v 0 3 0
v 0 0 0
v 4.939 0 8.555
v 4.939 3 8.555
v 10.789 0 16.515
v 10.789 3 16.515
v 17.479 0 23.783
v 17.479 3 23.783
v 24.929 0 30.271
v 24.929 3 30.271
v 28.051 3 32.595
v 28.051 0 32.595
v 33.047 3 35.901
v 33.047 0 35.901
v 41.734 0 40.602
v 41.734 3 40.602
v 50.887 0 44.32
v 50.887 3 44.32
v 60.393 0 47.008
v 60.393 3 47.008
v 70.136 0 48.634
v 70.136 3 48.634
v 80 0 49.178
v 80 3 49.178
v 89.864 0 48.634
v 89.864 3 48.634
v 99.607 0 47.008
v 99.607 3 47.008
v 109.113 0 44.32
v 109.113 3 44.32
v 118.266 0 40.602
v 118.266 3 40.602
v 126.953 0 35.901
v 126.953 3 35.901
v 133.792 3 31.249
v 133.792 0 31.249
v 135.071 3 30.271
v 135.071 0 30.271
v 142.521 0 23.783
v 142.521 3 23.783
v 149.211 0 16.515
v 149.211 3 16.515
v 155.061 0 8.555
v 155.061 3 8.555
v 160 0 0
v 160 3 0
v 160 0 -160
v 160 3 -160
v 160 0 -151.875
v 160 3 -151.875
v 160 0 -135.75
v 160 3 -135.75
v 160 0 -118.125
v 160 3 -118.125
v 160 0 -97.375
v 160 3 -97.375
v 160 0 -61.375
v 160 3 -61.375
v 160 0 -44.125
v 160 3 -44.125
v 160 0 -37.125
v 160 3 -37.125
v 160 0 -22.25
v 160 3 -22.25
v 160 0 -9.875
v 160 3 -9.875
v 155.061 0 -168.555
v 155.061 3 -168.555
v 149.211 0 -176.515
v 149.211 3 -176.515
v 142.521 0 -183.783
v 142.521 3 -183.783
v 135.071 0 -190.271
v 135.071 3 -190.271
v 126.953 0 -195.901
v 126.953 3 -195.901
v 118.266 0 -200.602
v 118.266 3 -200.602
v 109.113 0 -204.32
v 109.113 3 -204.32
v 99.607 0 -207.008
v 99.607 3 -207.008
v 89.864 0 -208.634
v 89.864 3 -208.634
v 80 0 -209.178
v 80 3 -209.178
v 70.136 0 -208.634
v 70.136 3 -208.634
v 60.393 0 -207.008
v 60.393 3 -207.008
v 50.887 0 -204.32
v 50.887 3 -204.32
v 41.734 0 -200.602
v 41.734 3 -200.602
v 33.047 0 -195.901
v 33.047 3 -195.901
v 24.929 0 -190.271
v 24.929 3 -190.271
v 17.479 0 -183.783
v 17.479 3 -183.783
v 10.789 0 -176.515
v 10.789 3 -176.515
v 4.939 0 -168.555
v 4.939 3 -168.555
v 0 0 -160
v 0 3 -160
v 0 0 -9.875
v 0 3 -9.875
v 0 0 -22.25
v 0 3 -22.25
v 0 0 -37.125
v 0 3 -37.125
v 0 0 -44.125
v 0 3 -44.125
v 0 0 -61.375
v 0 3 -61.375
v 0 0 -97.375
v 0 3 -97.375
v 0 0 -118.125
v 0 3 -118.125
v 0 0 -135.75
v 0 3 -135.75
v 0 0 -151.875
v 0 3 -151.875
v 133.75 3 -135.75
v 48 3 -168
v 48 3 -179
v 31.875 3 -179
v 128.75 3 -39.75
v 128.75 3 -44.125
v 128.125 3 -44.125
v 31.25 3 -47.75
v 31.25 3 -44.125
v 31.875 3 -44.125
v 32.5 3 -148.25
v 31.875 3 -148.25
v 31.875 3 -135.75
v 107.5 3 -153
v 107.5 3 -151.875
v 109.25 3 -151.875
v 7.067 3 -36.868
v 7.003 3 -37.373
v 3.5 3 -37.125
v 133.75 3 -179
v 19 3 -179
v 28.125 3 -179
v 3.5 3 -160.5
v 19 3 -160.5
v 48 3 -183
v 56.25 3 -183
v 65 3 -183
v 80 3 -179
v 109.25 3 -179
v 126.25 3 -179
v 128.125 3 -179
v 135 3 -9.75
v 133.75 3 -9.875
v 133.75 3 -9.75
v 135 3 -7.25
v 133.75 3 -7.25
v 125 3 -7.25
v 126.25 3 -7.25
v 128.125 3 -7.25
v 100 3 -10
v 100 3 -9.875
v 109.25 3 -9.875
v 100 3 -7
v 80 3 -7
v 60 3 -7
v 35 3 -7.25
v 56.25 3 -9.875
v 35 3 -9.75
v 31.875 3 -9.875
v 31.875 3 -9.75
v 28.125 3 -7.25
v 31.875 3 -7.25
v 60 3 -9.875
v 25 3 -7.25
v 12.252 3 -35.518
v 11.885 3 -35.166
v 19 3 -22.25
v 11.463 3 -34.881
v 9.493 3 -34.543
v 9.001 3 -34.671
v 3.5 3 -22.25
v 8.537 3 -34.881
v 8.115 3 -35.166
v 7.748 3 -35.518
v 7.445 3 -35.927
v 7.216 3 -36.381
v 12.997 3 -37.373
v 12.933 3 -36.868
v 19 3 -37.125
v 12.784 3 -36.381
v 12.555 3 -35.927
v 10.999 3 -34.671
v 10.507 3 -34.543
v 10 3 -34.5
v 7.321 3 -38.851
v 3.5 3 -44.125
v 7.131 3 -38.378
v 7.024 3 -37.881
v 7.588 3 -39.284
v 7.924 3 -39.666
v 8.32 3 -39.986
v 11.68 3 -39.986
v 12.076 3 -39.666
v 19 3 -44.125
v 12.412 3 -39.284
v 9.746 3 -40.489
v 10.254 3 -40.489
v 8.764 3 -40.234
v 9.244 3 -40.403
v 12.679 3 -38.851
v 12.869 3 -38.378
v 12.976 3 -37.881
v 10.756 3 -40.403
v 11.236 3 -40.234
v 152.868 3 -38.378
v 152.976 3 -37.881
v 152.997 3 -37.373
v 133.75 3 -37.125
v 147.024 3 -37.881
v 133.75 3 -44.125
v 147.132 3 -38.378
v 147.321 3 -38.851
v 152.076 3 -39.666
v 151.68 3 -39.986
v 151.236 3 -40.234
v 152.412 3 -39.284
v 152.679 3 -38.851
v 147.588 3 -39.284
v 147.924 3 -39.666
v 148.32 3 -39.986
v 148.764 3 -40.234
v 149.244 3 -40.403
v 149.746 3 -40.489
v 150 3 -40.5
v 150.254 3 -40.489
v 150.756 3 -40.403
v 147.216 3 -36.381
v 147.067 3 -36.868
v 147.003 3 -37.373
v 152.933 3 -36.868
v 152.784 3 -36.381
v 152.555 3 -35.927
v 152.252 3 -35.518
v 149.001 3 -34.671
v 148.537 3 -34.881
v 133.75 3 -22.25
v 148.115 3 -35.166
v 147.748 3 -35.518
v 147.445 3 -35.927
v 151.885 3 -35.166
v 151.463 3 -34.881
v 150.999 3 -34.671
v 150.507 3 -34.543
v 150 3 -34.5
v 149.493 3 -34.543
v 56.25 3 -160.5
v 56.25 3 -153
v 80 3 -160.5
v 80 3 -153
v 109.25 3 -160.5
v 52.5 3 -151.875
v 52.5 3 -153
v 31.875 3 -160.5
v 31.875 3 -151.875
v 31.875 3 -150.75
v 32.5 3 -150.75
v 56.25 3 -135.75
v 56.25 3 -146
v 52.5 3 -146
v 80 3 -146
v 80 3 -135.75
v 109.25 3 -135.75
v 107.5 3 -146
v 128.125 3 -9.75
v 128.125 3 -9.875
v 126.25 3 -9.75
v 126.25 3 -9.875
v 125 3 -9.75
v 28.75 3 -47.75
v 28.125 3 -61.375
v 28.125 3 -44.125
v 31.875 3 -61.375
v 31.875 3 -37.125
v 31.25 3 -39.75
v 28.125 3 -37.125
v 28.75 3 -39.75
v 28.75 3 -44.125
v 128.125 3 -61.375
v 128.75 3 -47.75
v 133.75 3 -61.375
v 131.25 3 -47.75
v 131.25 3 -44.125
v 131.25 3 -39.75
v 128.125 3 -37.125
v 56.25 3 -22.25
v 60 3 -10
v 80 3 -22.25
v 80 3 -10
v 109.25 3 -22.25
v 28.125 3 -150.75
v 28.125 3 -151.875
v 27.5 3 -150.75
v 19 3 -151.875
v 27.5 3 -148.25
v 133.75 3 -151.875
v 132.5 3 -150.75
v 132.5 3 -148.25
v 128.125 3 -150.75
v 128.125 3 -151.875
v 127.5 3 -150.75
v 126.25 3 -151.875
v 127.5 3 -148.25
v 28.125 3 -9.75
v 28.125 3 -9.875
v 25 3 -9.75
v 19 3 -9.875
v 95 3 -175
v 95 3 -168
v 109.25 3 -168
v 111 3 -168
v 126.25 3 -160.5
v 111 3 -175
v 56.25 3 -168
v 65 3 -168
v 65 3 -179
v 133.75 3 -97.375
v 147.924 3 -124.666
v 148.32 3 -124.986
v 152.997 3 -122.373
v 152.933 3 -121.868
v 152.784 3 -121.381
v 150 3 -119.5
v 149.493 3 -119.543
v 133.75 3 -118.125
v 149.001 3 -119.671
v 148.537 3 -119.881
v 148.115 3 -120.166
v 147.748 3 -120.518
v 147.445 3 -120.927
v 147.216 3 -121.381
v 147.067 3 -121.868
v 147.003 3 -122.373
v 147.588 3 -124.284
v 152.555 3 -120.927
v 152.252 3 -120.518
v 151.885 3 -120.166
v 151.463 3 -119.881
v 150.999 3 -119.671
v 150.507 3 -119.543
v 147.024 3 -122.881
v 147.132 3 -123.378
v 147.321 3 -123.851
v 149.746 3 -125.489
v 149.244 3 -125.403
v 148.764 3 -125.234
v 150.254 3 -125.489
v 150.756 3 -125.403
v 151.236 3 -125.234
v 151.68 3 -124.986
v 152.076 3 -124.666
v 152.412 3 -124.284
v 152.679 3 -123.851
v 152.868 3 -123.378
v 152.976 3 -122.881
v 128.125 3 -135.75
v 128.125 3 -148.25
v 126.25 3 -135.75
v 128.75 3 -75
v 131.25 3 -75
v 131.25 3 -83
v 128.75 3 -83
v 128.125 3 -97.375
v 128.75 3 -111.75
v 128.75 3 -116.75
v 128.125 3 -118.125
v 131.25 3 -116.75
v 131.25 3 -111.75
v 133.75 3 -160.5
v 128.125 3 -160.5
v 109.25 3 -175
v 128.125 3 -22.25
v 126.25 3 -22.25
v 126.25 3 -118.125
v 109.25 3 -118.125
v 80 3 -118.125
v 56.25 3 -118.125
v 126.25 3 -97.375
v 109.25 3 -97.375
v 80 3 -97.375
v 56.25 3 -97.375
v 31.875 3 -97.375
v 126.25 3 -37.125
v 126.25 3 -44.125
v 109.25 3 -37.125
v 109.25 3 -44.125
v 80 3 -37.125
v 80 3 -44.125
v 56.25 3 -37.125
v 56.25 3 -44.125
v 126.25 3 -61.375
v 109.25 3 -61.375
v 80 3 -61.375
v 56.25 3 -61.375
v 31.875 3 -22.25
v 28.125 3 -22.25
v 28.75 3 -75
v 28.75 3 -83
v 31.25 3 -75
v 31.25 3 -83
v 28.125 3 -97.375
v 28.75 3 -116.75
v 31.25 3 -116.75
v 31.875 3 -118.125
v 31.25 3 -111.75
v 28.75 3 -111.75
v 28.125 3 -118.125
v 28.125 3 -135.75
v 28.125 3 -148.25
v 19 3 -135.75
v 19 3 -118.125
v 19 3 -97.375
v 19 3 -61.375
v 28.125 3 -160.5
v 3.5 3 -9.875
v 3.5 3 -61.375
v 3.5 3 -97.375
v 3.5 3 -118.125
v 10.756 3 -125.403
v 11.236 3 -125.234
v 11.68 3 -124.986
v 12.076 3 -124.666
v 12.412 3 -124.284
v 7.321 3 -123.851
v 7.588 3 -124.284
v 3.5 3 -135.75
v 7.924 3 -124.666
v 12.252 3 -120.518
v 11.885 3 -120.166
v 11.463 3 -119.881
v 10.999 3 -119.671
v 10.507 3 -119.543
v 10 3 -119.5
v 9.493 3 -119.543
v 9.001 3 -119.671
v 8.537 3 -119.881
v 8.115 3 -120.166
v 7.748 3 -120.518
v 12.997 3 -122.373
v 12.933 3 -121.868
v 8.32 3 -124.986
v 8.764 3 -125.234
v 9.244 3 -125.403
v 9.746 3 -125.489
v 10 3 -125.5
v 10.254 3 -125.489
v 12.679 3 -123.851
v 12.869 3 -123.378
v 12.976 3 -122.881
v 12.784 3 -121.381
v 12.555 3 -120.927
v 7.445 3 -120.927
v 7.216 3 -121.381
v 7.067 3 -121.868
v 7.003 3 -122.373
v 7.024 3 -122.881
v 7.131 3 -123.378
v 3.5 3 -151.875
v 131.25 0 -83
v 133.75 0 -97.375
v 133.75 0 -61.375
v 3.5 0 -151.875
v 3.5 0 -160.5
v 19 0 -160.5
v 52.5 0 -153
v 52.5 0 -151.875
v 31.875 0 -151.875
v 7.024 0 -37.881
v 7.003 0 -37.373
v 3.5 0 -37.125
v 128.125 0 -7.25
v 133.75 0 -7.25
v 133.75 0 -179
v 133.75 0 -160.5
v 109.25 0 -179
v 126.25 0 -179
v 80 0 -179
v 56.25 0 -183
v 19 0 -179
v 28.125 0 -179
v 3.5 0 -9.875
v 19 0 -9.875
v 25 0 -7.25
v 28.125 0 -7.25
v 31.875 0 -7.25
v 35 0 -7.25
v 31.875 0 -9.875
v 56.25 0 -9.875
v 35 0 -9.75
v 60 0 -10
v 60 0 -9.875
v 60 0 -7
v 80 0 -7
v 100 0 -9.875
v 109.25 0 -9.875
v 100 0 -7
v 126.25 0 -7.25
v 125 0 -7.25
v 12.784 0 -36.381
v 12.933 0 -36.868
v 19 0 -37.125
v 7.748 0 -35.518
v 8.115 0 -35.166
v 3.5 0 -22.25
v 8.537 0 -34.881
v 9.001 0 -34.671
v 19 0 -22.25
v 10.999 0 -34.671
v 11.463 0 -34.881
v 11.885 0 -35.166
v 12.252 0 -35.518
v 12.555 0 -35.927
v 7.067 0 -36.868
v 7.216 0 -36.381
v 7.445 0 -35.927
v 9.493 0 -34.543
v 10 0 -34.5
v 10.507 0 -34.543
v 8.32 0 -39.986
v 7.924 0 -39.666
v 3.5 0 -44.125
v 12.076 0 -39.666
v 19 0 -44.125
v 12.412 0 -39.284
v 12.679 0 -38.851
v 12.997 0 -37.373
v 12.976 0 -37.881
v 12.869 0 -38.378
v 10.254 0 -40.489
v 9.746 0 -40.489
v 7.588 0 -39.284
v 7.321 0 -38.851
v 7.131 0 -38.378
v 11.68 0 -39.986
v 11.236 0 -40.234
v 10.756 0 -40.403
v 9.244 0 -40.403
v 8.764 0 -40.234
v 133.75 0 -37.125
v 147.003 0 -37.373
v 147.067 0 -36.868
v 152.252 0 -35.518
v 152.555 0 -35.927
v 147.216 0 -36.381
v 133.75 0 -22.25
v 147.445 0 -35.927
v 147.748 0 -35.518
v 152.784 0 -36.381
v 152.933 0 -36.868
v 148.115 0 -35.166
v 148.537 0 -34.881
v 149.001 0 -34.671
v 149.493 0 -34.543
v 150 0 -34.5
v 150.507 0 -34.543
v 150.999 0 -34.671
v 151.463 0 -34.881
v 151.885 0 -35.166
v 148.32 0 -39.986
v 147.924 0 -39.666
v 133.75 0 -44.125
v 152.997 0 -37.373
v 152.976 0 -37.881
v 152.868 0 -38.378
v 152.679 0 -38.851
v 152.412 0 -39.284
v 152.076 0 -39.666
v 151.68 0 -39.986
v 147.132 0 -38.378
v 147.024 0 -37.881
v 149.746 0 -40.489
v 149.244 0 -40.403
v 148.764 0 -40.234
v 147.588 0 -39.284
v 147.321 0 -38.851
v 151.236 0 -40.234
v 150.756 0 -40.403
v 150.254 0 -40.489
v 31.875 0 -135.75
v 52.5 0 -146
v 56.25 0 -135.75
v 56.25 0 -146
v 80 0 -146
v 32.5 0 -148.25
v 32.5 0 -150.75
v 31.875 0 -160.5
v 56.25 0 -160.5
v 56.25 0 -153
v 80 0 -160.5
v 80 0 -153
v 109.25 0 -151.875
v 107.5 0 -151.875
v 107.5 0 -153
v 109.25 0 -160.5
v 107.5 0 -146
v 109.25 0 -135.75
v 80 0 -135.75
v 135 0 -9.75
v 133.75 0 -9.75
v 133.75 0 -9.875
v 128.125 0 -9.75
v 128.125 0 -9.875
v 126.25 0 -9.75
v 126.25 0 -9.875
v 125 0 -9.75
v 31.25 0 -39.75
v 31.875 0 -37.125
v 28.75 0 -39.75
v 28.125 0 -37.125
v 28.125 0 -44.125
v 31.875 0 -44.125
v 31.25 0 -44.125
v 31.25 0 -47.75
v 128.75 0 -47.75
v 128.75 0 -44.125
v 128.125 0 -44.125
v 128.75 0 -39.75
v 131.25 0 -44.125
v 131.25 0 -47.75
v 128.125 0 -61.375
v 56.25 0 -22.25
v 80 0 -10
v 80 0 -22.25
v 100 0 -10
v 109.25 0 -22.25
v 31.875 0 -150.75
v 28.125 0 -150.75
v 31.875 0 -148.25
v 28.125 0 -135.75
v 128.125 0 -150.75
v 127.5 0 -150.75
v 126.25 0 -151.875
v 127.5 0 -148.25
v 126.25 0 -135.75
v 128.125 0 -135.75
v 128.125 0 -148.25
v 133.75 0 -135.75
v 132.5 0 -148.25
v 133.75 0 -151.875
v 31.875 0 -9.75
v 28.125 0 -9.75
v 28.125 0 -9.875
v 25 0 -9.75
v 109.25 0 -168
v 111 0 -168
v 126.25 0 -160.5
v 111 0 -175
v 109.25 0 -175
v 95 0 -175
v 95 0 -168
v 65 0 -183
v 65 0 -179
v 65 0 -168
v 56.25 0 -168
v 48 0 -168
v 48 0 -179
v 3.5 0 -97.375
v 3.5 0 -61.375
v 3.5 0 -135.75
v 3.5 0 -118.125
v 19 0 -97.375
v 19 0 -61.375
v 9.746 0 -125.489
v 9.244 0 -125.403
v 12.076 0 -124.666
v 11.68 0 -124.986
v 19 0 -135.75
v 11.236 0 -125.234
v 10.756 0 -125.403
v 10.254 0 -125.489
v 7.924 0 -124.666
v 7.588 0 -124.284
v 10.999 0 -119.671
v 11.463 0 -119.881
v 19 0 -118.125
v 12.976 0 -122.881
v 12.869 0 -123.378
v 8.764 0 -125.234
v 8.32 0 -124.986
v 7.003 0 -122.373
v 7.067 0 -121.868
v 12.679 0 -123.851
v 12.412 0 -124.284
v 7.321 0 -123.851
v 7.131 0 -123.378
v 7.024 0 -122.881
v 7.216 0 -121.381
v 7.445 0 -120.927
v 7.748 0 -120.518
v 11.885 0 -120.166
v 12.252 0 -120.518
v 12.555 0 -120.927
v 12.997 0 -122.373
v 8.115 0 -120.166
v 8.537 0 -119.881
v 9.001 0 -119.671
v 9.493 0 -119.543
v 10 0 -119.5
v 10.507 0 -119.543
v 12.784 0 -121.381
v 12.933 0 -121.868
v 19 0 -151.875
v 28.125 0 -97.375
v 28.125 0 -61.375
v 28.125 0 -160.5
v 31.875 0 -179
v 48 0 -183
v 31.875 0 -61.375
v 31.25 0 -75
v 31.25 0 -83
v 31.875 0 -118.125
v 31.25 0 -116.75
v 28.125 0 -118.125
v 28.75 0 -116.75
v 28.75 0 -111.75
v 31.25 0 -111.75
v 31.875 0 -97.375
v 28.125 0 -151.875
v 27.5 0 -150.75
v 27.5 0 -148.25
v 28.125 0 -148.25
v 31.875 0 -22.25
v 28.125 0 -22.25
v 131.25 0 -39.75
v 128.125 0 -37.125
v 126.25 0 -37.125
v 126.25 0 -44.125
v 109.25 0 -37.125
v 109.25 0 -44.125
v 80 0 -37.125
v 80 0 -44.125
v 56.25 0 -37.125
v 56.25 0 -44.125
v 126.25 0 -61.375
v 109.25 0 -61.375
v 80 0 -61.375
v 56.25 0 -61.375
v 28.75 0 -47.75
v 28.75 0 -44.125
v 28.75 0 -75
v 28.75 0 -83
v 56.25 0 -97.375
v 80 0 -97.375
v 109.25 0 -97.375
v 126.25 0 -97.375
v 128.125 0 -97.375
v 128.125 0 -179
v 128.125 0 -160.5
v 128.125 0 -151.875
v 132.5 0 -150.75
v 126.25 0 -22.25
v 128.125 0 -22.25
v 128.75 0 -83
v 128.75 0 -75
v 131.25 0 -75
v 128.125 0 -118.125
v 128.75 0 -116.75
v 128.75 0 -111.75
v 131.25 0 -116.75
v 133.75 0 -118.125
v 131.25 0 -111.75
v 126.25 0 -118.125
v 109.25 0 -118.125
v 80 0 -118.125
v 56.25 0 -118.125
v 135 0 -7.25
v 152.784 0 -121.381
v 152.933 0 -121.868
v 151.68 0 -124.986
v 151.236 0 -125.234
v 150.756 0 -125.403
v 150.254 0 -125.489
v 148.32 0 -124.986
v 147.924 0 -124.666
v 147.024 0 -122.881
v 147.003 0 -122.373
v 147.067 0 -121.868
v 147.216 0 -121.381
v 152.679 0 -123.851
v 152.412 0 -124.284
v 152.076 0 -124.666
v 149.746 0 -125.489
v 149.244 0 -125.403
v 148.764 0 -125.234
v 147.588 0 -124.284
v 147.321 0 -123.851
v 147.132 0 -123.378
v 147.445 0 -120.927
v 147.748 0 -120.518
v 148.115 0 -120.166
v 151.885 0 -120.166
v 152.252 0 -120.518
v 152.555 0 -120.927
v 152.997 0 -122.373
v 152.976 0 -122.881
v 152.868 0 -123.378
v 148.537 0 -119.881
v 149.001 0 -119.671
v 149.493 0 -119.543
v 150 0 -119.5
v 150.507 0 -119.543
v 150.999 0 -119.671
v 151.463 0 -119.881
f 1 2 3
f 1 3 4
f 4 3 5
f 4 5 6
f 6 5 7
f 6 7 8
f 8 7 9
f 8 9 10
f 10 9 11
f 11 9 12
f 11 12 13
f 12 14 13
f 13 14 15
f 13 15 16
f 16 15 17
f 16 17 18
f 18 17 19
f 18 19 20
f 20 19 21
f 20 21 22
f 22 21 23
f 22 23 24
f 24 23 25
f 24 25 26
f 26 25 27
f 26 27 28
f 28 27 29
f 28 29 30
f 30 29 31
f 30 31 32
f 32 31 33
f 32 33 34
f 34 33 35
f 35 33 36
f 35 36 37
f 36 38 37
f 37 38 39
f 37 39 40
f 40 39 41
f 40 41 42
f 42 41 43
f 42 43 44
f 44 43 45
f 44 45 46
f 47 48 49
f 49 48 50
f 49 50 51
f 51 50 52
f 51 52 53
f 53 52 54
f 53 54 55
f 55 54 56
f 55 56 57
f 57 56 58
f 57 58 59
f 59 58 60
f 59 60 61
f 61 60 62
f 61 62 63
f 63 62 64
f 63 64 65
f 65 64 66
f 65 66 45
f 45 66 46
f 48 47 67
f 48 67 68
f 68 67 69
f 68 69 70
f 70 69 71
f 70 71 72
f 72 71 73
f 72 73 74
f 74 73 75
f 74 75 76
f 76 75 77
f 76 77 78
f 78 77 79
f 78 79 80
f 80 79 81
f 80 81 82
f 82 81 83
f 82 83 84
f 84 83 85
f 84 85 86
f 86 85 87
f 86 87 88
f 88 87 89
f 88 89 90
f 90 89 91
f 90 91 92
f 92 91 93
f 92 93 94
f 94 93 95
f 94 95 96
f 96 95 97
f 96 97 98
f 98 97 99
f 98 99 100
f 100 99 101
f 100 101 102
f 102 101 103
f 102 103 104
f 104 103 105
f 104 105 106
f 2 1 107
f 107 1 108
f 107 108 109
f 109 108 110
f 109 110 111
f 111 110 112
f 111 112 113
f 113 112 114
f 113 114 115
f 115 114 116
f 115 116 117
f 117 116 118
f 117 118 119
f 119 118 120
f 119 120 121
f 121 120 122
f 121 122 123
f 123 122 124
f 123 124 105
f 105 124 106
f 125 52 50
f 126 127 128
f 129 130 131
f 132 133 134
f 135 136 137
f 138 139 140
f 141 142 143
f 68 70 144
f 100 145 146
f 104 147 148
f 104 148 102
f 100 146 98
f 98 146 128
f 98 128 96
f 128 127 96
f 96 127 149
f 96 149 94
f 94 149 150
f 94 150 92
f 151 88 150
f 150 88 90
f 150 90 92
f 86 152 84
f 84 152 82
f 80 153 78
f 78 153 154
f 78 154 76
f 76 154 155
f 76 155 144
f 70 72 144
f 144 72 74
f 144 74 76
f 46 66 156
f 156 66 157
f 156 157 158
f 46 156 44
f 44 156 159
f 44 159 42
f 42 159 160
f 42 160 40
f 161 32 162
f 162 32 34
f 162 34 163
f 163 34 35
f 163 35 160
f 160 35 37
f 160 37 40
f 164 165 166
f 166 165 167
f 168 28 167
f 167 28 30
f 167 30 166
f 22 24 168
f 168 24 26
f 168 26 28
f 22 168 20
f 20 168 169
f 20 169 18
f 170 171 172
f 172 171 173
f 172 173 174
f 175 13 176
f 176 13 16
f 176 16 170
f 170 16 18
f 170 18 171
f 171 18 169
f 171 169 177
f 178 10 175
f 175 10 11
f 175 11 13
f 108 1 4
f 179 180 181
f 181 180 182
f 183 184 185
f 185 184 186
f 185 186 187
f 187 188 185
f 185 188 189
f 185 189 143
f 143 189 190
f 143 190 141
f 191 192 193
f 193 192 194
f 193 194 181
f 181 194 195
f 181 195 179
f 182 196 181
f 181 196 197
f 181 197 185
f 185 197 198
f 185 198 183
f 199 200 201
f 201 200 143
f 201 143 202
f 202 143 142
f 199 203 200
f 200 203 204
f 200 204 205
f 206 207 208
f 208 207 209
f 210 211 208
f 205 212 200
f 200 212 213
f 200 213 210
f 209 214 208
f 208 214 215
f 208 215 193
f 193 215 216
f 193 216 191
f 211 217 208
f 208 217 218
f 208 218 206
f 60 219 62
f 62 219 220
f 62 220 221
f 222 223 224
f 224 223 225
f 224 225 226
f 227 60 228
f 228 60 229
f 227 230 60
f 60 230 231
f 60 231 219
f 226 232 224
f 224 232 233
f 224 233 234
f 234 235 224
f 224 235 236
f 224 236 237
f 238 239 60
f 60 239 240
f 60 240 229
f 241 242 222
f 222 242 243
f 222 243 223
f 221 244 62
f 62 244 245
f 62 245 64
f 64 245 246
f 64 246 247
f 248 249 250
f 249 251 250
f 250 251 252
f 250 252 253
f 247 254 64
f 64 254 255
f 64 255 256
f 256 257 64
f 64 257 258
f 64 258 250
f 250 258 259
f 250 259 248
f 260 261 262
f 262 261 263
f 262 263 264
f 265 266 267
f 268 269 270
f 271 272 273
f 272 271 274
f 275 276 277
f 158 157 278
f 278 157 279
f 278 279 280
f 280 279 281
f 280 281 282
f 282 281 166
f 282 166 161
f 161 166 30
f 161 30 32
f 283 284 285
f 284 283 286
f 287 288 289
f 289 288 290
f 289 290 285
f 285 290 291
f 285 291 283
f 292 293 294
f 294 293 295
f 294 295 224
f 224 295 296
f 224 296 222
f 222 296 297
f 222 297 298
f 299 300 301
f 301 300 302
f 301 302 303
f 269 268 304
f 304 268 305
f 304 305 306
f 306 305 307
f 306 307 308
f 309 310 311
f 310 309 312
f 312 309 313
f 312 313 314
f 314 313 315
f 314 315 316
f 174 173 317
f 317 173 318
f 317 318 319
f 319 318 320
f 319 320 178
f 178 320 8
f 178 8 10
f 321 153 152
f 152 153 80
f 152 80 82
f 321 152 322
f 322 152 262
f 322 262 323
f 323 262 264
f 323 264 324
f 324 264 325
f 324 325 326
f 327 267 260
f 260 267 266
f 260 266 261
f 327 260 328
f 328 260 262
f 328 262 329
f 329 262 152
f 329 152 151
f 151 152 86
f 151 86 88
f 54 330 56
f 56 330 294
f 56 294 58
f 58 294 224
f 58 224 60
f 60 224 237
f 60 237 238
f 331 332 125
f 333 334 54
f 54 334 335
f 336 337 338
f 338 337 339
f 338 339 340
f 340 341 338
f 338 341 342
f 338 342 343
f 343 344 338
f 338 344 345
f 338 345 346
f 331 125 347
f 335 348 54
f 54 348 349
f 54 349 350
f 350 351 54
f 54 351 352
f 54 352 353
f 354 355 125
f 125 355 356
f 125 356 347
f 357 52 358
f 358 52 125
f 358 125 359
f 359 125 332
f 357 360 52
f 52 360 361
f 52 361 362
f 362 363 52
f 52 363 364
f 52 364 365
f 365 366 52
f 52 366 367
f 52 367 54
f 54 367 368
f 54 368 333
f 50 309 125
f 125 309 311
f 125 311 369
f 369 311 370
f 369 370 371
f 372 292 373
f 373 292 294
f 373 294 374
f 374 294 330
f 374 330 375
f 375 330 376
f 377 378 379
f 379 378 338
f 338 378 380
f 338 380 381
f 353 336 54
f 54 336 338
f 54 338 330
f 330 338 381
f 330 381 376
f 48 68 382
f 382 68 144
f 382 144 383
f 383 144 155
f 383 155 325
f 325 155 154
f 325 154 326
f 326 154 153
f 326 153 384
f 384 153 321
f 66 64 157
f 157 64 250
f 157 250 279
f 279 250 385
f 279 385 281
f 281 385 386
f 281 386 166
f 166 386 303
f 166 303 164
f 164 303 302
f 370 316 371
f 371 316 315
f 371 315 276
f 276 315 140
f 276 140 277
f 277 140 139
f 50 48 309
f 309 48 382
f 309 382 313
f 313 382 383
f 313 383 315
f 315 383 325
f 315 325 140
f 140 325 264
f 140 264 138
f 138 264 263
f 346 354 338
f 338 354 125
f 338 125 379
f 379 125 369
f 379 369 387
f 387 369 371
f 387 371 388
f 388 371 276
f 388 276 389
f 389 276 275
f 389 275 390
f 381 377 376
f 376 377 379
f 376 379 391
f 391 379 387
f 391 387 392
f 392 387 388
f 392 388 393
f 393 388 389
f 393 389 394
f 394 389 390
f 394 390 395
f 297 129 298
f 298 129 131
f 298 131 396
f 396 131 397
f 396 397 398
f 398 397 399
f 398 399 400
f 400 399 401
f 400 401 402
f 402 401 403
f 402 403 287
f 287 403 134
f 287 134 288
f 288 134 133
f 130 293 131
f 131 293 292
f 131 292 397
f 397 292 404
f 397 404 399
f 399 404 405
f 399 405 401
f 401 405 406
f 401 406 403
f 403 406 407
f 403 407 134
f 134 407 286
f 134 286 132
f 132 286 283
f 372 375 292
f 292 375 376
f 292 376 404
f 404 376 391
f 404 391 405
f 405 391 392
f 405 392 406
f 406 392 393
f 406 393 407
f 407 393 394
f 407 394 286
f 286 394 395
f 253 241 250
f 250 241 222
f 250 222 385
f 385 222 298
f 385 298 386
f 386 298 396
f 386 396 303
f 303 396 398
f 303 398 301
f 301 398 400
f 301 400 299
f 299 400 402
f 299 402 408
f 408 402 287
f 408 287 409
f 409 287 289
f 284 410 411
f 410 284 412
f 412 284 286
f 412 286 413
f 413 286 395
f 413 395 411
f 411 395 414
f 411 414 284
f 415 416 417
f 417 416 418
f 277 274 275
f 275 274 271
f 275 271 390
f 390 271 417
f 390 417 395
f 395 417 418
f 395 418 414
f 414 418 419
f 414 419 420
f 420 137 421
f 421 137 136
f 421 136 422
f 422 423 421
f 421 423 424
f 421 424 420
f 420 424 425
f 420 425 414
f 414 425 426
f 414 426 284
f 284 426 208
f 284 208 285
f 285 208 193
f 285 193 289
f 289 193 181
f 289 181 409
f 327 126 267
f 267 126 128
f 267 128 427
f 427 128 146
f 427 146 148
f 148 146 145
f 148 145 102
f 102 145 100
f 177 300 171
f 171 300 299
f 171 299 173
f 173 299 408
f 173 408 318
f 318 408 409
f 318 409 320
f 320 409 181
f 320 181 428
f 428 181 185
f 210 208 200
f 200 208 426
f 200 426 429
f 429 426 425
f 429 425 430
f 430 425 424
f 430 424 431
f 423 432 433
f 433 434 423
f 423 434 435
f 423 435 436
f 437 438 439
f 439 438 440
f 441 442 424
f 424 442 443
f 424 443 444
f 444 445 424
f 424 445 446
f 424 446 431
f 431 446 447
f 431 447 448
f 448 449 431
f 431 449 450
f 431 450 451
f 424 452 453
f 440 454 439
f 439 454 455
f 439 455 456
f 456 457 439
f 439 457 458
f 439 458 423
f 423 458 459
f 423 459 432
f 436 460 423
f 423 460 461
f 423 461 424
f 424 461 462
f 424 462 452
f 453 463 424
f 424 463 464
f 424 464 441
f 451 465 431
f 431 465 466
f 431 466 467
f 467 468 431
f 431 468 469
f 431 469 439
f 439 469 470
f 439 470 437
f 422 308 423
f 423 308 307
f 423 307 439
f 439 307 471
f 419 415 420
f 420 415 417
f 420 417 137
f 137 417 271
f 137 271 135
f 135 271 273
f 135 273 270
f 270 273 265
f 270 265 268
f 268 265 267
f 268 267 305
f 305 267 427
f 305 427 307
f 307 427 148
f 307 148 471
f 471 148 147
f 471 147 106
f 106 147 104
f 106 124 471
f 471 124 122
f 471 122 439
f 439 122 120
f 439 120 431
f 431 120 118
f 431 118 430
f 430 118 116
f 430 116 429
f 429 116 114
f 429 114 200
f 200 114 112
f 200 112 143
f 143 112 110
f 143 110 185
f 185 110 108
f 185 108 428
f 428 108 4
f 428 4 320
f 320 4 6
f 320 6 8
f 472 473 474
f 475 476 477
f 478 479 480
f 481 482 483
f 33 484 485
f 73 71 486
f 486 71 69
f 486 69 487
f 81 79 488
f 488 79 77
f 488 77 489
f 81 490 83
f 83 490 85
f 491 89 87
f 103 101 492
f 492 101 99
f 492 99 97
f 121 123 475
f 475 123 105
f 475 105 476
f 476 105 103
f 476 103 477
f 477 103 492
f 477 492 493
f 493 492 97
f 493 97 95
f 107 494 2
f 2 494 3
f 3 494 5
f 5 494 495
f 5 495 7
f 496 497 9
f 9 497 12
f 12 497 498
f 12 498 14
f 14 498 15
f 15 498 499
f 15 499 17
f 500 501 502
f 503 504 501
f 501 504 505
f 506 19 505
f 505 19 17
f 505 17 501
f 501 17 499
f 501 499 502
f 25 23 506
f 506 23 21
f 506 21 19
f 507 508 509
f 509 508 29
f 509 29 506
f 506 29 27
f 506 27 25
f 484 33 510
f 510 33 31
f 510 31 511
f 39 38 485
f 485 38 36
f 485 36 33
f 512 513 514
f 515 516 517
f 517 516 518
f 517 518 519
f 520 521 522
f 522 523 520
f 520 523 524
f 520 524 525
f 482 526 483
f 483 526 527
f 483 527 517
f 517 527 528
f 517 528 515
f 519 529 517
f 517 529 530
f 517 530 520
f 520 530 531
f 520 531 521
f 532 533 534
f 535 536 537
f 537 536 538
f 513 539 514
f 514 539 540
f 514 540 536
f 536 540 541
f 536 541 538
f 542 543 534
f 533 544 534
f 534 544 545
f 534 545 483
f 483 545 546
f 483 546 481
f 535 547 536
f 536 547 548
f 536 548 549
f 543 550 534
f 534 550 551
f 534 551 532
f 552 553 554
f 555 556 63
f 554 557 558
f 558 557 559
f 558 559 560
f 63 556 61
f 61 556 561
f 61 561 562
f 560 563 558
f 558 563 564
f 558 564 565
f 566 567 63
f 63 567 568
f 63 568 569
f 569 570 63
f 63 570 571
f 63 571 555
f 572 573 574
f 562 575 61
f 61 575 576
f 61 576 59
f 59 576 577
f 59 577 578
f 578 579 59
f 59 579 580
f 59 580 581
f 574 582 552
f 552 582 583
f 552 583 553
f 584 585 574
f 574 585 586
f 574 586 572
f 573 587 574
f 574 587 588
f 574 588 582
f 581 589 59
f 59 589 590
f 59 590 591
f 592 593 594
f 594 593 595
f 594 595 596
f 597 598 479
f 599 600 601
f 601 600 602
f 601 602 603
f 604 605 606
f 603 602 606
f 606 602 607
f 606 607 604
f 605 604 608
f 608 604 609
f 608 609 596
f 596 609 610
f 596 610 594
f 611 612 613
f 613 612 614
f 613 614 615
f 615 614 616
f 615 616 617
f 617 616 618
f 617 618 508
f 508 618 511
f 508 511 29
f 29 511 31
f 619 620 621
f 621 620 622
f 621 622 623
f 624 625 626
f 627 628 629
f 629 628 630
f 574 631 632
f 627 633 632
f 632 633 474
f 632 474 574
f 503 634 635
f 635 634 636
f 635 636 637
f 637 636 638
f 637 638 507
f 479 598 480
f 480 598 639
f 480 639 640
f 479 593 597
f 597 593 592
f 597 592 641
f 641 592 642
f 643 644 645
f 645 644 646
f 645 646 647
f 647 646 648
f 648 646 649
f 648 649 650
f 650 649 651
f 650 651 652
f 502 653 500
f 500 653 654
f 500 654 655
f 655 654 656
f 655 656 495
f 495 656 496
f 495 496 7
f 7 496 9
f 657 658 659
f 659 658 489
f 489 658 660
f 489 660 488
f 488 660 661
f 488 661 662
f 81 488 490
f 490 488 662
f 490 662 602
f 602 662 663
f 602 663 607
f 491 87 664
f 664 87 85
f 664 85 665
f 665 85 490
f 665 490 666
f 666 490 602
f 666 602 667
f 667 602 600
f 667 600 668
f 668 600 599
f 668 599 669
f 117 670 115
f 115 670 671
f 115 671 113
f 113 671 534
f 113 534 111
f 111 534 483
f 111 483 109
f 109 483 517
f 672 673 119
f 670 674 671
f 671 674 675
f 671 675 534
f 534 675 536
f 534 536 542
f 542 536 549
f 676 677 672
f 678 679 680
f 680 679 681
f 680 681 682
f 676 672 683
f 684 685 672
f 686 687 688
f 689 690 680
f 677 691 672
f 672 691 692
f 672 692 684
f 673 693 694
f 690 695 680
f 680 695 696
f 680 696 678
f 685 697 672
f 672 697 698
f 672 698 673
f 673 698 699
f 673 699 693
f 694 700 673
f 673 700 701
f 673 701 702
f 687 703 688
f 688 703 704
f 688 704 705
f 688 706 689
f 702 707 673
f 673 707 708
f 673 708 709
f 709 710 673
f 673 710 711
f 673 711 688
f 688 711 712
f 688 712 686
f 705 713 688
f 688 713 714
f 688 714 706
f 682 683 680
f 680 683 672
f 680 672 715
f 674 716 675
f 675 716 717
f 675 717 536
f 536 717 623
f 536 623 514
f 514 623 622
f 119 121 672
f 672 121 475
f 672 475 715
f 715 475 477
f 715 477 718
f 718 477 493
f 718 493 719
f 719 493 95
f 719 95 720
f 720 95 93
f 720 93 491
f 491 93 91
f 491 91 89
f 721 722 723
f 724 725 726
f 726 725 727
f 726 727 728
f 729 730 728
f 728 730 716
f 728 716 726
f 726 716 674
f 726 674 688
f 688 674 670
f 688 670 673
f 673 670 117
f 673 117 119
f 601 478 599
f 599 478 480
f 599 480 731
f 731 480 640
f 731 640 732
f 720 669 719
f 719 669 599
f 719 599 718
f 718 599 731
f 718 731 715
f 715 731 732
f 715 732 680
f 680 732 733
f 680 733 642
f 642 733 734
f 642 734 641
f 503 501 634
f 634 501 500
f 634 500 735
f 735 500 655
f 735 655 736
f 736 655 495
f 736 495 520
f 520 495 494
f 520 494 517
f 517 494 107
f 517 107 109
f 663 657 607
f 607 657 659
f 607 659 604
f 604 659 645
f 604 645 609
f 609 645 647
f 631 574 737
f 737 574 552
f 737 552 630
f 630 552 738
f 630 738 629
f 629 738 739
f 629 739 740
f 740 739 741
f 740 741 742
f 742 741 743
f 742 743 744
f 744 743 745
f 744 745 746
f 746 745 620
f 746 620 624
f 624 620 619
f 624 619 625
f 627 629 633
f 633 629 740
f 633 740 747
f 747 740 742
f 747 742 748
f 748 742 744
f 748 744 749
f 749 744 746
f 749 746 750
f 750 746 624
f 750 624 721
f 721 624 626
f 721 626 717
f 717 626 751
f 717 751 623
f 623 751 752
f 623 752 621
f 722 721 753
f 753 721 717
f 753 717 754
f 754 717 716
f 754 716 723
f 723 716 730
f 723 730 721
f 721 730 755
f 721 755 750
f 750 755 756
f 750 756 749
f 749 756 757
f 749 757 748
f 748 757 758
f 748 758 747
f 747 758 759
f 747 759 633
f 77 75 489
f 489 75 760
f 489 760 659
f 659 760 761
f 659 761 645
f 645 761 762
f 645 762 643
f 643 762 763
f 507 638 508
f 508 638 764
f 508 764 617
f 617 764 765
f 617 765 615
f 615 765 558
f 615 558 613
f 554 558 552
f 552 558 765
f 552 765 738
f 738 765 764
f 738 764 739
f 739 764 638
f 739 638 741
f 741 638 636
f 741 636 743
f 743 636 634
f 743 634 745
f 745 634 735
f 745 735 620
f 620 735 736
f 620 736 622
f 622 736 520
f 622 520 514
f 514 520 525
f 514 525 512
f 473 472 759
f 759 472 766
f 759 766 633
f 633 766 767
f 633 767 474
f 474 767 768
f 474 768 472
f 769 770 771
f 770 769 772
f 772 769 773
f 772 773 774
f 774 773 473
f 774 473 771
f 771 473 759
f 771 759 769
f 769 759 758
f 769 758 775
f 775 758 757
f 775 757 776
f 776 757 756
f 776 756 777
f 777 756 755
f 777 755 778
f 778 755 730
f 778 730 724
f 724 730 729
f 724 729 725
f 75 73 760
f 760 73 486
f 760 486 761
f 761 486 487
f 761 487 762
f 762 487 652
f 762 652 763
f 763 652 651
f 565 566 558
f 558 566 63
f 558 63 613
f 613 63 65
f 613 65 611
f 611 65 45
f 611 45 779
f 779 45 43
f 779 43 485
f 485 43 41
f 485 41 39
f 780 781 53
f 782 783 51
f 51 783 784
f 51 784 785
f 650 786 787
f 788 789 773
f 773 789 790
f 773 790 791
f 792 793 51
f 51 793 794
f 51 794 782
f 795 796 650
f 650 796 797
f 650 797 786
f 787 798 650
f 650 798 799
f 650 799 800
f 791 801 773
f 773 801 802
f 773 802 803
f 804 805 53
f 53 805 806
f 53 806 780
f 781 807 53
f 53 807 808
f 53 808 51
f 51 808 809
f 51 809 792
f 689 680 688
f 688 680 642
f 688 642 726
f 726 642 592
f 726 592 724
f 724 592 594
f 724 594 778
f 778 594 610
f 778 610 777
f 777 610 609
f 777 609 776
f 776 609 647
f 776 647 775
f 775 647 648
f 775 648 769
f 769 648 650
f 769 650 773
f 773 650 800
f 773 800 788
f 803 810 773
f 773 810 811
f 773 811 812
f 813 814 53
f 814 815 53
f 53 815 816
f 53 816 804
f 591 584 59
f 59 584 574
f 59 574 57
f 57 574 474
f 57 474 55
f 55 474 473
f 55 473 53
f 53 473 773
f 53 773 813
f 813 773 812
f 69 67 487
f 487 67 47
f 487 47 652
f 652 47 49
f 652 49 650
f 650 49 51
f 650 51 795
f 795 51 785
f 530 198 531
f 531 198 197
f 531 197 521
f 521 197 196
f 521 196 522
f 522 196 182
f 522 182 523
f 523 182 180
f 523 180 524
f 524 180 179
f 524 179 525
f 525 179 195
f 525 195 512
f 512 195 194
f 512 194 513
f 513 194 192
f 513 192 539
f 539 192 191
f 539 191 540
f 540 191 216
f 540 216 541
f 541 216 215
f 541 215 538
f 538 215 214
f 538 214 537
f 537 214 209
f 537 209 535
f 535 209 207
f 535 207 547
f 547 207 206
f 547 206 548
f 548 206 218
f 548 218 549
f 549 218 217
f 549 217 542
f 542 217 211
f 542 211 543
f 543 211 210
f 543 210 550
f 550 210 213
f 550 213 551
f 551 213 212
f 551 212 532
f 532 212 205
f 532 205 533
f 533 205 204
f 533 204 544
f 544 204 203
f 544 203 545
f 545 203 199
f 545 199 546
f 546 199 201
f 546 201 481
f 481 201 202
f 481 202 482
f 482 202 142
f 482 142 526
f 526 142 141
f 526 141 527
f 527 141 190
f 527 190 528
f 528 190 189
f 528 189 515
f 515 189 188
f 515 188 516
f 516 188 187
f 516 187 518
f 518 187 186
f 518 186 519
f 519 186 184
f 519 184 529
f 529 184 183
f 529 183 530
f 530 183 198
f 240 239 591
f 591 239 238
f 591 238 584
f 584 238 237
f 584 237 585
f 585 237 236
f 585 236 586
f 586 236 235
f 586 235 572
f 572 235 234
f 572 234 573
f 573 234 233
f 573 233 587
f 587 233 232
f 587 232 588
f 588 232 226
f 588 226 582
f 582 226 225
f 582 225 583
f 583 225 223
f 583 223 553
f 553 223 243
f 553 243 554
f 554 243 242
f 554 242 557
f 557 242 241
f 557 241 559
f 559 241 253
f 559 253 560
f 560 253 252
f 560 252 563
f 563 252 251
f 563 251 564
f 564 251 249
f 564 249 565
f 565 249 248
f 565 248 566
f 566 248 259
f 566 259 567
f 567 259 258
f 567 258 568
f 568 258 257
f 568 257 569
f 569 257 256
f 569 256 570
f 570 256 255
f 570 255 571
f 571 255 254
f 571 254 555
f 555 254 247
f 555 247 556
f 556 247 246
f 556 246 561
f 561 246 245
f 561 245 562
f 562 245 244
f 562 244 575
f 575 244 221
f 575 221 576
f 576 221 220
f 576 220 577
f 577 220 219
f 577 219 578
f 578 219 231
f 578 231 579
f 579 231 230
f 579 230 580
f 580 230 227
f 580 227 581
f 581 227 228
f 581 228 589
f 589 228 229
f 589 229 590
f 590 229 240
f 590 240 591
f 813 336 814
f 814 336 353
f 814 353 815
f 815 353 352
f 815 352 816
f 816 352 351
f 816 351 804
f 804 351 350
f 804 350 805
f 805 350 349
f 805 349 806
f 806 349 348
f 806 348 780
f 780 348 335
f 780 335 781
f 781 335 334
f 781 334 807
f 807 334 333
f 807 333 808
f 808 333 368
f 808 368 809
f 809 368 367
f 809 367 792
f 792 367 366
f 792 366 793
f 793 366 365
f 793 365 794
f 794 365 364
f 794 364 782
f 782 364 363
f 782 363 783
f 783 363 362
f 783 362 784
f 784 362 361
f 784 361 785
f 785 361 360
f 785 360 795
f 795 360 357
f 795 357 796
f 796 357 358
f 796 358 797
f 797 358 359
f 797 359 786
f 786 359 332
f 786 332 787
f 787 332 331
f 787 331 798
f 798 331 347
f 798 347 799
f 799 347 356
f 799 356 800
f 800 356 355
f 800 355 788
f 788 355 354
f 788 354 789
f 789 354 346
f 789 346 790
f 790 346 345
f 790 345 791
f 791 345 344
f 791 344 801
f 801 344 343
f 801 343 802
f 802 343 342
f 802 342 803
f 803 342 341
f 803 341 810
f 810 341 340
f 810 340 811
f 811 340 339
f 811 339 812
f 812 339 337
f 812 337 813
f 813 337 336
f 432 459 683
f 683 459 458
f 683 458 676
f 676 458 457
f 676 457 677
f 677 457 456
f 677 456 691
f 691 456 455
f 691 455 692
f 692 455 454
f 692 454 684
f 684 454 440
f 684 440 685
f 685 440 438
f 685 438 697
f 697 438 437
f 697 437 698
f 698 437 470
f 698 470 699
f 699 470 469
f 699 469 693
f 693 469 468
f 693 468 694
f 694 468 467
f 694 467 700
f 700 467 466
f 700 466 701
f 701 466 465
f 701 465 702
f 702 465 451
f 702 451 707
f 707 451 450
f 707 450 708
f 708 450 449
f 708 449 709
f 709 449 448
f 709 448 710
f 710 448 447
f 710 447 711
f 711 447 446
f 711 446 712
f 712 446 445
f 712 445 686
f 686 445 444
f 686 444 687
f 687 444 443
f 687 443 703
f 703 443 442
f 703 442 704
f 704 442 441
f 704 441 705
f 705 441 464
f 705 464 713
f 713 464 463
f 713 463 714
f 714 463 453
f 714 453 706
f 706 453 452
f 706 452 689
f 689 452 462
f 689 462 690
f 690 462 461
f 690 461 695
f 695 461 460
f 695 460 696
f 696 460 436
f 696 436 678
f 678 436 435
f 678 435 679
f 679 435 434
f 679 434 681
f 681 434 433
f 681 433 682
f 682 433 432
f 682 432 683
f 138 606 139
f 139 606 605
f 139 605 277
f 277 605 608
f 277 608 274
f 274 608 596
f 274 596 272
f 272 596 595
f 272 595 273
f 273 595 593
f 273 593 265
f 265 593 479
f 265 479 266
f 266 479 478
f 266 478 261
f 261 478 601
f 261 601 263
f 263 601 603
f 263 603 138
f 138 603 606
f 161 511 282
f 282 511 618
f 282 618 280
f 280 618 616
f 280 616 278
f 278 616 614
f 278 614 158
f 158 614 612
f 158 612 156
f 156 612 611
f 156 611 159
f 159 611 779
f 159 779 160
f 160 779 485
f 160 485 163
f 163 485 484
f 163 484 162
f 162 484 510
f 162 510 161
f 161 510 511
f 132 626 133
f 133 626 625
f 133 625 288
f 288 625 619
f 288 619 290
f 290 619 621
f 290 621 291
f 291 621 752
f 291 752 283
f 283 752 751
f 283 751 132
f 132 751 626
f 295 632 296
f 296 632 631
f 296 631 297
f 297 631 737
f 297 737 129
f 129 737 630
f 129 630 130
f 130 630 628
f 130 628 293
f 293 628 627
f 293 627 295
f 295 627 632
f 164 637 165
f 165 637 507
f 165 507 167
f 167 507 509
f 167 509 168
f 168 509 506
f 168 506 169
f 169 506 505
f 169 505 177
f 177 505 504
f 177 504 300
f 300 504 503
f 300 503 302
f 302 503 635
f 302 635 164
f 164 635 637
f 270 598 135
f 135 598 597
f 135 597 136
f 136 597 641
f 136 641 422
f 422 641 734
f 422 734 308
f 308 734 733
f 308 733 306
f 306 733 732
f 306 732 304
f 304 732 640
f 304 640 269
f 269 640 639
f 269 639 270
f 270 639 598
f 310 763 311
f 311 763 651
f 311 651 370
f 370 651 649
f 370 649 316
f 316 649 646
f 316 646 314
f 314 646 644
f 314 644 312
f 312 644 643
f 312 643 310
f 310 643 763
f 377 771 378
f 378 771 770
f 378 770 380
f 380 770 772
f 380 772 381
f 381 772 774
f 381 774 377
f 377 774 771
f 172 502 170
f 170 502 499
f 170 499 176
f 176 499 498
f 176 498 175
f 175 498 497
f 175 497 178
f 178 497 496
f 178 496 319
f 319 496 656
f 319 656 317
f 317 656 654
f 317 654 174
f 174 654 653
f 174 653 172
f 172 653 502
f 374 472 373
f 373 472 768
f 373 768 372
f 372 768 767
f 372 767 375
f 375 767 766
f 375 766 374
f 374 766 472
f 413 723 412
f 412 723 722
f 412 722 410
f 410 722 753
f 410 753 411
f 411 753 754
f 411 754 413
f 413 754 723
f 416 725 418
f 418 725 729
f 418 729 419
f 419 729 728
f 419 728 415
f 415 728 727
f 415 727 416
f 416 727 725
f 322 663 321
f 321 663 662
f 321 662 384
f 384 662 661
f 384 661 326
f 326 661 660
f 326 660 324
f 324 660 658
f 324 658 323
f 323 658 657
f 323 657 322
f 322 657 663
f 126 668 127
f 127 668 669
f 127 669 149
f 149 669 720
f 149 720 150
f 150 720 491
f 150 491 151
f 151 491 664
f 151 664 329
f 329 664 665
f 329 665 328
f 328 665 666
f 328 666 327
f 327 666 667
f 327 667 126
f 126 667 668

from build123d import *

# Parameters (mm, degrees)
BOSS_EXTRUDE1_DEPTH = 3
SKETCH5_R           = 3
CUT_EXTRUDE2_DEPTH  = 44
SKETCH8_W           = 55
SKETCH8_H           = 7
SKETCH8_W_2         = 2.5
SKETCH8_H_2         = 8
SKETCH8_W_3         = 40
SKETCH8_H_3         = 3
SKETCH8_W_4         = 5
SKETCH8_H_4         = 2.5
SKETCH8_H_5         = 5
SKETCH8_W_5         = 10
CUT_EXTRUDE5_DEPTH  = 31
SKETCH9_W           = 17
SKETCH9_H           = 15
SKETCH9_W_2         = 16
SKETCH9_H_2         = 7
CUT_EXTRUDE6_DEPTH  = 29


with BuildPart() as part:
    # Sketch1 → Boss-Extrude1 (new body)
    with BuildSketch(Plane(origin=(0, 0, 0), x_dir=(1, 0, 0), z_dir=(0, 1, 0))):
        with BuildLine():
            Line((0, 0), (0, 160))
            ThreePointArc((0, 160), (80, 209.178296965), (160, 160))
            Line((160, 160), (160, 0))
            ThreePointArc((160, 0), (80, -49.178296965), (0, 0))
        make_face()
    extrude(amount=BOSS_EXTRUDE1_DEPTH)

    # Sketch5 → Cut-Extrude2 (cut)
    with BuildSketch(Plane(origin=(0, 3, 0), x_dir=(1, 0, 0), z_dir=(0, 1, 0))):
        with Locations(Location((10, 37.5, 0), (0, 0, 270))):
            Circle(SKETCH5_R)
        with Locations(Location((150, 37.5, 0), (0, 0, 270))):
            Circle(SKETCH5_R)
        with Locations(Location((150, 122.5, 0), (0, 0, 270))):
            Circle(SKETCH5_R)
        with Locations(Location((10, 122.5, 0), (0, 0, 270))):
            Circle(SKETCH5_R)
    extrude(amount=-CUT_EXTRUDE2_DEPTH, mode=Mode.SUBTRACT)

    # Sketch8 → Cut-Extrude5 (cut)
    with BuildSketch(Plane(origin=(0, 3, 0), x_dir=(1, 0, 0), z_dir=(0, 1, 0))):
        with Locations((80, 149.5)):
            Rectangle(SKETCH8_W, SKETCH8_H)
        with Locations((30, 43.75)):
            Rectangle(SKETCH8_W_2, SKETCH8_H_2)
        with Locations((80, 8.5)):
            Rectangle(SKETCH8_W_3, SKETCH8_H_3)
        with Locations((30, 149.5)):
            Rectangle(SKETCH8_W_4, SKETCH8_H_4)
        with Locations((130, 149.5)):
            Rectangle(SKETCH8_W_4, SKETCH8_H_4)
        with Locations((130, 114.25)):
            Rectangle(SKETCH8_W_2, SKETCH8_H_5)
        with Locations((30, 114.25)):
            Rectangle(SKETCH8_W_2, SKETCH8_H_5)
        with Locations((30, 79)):
            Rectangle(SKETCH8_W_2, SKETCH8_H_2)
        with Locations((130, 79)):
            Rectangle(SKETCH8_W_2, SKETCH8_H_2)
        with Locations((30, 8.5)):
            Rectangle(SKETCH8_W_5, SKETCH8_H_4)
        with Locations((130, 8.5)):
            Rectangle(SKETCH8_W_5, SKETCH8_H_4)
        with Locations((130, 43.75)):
            Rectangle(SKETCH8_W_2, SKETCH8_H_2)
    extrude(amount=-CUT_EXTRUDE5_DEPTH, mode=Mode.SUBTRACT)

    # Sketch9 → Cut-Extrude6 (cut)
    with BuildSketch(Plane(origin=(0, 3, 0), x_dir=(1, 0, 0), z_dir=(0, 1, 0))):
        with Locations((56.5, 175.5)):
            Rectangle(SKETCH9_W, SKETCH9_H)
        with Locations((103, 171.5)):
            Rectangle(SKETCH9_W_2, SKETCH9_H_2)
    extrude(amount=-CUT_EXTRUDE6_DEPTH, mode=Mode.SUBTRACT)


solid = part.part
